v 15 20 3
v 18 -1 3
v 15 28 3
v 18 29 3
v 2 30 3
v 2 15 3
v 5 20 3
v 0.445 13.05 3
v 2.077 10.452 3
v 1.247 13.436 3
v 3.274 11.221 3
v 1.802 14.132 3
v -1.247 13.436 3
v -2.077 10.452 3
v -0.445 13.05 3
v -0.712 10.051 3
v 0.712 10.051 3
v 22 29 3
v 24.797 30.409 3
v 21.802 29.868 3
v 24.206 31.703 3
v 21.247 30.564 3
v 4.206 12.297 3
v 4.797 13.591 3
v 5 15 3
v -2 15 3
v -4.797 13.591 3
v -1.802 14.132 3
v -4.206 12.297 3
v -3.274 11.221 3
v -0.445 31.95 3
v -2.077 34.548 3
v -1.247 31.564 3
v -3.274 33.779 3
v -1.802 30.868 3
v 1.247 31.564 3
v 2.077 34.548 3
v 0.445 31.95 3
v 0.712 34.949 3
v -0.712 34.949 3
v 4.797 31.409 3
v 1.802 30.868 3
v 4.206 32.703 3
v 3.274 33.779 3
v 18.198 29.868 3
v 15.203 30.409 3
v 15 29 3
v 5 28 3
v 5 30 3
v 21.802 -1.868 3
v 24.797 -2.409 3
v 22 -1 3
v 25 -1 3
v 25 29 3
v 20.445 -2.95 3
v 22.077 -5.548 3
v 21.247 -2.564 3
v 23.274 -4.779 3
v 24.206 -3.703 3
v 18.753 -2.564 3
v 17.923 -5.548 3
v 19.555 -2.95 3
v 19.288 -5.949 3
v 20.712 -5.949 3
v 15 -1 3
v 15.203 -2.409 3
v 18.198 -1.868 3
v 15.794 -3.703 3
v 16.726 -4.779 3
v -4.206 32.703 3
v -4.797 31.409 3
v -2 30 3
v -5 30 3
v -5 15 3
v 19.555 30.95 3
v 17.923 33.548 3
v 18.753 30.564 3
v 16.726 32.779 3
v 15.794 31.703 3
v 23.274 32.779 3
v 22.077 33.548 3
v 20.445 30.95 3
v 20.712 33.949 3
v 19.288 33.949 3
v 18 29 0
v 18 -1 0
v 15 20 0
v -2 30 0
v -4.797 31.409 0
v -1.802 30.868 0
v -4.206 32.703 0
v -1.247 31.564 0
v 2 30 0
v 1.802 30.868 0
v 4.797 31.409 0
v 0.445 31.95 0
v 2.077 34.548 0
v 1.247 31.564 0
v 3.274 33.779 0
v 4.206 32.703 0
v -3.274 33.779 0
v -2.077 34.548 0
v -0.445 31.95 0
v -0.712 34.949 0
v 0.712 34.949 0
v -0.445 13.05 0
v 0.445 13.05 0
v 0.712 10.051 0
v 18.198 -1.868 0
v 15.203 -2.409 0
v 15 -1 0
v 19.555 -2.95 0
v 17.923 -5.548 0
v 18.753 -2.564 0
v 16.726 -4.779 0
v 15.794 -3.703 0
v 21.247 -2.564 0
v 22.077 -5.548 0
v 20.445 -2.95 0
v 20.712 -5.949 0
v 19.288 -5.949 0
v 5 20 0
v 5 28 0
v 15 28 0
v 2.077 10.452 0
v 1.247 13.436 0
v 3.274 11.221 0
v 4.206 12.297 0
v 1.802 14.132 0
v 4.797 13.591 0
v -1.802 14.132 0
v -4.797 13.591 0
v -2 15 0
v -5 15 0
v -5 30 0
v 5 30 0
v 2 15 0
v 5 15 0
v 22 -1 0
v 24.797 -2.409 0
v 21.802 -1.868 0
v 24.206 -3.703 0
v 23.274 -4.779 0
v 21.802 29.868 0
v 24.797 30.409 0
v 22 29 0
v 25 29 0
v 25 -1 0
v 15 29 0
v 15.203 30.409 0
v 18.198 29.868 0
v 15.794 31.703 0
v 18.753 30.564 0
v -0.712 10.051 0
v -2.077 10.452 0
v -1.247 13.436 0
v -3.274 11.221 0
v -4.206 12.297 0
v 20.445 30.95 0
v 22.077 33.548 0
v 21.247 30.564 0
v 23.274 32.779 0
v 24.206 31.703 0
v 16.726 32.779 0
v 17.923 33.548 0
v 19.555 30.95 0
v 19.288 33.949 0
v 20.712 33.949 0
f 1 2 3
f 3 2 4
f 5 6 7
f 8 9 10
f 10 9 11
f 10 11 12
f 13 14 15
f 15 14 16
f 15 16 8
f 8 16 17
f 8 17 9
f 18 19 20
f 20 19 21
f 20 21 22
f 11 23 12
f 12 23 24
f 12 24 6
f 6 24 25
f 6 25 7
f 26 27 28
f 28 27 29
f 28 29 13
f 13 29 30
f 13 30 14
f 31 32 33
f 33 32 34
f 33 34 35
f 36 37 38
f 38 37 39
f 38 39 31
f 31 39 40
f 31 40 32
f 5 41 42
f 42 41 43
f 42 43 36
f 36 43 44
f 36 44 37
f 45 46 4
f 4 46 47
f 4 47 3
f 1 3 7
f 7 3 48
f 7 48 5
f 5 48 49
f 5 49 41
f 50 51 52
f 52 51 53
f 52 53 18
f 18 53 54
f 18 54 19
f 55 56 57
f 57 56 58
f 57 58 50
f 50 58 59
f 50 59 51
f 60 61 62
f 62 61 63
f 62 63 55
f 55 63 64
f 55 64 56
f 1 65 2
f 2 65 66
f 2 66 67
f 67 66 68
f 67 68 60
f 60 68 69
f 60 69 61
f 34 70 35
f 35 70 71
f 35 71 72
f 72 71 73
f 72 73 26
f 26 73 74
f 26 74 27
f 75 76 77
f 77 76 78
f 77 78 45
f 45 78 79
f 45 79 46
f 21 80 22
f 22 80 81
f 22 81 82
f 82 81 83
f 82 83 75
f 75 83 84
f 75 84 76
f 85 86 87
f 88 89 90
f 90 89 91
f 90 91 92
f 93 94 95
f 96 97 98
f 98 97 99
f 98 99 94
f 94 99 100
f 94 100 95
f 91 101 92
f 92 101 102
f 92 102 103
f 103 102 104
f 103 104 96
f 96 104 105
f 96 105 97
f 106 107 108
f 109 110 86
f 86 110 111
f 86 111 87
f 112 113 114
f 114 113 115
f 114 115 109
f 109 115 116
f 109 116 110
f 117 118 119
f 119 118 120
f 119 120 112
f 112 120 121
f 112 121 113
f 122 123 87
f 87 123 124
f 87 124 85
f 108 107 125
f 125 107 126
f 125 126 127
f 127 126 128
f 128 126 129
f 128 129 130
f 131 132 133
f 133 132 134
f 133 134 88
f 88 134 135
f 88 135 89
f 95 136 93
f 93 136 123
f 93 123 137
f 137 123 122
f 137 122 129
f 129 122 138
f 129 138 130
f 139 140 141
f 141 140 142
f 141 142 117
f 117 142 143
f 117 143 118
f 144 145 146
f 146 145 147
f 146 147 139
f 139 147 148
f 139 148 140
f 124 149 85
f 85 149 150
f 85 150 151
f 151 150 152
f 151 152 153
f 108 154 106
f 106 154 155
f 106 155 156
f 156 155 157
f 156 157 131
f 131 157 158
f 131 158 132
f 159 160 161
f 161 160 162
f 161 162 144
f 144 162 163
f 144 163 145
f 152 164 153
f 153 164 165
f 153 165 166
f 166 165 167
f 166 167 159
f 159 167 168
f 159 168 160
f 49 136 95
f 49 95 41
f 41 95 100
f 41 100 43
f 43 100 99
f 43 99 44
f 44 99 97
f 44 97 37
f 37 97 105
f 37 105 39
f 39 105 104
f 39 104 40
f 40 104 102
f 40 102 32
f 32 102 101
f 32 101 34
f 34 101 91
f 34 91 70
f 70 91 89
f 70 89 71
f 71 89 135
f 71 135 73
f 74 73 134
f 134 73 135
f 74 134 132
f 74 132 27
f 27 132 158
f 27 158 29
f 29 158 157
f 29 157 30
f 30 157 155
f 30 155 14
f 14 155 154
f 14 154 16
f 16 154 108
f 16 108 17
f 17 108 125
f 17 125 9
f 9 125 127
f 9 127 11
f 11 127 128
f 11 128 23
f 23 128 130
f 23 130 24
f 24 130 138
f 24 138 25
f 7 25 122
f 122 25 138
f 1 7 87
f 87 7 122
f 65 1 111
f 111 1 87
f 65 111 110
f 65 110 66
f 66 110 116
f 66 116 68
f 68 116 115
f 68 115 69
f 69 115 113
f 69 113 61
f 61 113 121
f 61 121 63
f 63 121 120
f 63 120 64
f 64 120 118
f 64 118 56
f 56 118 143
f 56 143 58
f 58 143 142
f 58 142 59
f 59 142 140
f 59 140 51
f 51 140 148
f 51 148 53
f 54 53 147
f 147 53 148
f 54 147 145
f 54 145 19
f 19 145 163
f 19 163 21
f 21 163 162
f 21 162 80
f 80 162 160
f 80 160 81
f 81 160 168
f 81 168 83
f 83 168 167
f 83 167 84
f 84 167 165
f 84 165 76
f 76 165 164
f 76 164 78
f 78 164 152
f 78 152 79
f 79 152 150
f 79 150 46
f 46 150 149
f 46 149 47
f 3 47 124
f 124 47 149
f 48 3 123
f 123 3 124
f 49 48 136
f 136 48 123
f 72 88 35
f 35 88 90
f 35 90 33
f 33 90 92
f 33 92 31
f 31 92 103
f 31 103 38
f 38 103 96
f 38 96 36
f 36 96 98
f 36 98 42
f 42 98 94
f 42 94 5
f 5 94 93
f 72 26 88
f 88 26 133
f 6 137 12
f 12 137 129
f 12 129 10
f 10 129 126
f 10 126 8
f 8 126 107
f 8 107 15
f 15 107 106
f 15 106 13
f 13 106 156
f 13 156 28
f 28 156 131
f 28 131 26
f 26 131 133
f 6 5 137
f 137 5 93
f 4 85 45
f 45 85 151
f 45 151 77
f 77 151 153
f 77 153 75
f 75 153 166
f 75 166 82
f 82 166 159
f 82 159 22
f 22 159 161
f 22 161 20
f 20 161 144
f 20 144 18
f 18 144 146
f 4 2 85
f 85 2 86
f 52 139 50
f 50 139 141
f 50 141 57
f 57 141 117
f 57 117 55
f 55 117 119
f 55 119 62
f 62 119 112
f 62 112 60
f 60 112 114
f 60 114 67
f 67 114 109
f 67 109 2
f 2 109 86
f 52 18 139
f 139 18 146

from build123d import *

# Parameters (mm, degrees)
RESSALTO_EXTRUS_O1_DEPTH = 3


with BuildPart() as part:
    # Esboço1 → Ressalto-extrusão1 (new body)
    with BuildSketch(Plane.XY):
        with BuildLine():
            Line((-5, 15), (-5, 30))
            ThreePointArc((-5, 30), (0, 35), (5, 30))
            Line((5, 30), (5, 28))
            Line((5, 28), (15, 28))
            Line((15, 28), (15, 29))
            ThreePointArc((15, 29), (20, 34), (25, 29))
            Line((25, 29), (25, -1))
            ThreePointArc((25, -1), (20, -6), (15, -1))
            Line((15, -1), (15, 20))
            Line((15, 20), (5, 20))
            Line((5, 20), (5, 15))
            ThreePointArc((5, 15), (0, 10), (-5, 15))
        make_face()
        with BuildLine():
            Line((2, 30), (2, 15))
            ThreePointArc((2, 15), (0, 13), (-2, 15))
            Line((-2, 15), (-2, 30))
            ThreePointArc((-2, 30), (0, 32), (2, 30))
        make_face(mode=Mode.SUBTRACT)
        with BuildLine():
            Line((22, 29), (22, -1))
            ThreePointArc((22, -1), (20, -3), (18, -1))
            Line((18, -1), (18, 29))
            ThreePointArc((18, 29), (20, 31), (22, 29))
        make_face(mode=Mode.SUBTRACT)
    extrude(amount=RESSALTO_EXTRUS_O1_DEPTH)


solid = part.part
